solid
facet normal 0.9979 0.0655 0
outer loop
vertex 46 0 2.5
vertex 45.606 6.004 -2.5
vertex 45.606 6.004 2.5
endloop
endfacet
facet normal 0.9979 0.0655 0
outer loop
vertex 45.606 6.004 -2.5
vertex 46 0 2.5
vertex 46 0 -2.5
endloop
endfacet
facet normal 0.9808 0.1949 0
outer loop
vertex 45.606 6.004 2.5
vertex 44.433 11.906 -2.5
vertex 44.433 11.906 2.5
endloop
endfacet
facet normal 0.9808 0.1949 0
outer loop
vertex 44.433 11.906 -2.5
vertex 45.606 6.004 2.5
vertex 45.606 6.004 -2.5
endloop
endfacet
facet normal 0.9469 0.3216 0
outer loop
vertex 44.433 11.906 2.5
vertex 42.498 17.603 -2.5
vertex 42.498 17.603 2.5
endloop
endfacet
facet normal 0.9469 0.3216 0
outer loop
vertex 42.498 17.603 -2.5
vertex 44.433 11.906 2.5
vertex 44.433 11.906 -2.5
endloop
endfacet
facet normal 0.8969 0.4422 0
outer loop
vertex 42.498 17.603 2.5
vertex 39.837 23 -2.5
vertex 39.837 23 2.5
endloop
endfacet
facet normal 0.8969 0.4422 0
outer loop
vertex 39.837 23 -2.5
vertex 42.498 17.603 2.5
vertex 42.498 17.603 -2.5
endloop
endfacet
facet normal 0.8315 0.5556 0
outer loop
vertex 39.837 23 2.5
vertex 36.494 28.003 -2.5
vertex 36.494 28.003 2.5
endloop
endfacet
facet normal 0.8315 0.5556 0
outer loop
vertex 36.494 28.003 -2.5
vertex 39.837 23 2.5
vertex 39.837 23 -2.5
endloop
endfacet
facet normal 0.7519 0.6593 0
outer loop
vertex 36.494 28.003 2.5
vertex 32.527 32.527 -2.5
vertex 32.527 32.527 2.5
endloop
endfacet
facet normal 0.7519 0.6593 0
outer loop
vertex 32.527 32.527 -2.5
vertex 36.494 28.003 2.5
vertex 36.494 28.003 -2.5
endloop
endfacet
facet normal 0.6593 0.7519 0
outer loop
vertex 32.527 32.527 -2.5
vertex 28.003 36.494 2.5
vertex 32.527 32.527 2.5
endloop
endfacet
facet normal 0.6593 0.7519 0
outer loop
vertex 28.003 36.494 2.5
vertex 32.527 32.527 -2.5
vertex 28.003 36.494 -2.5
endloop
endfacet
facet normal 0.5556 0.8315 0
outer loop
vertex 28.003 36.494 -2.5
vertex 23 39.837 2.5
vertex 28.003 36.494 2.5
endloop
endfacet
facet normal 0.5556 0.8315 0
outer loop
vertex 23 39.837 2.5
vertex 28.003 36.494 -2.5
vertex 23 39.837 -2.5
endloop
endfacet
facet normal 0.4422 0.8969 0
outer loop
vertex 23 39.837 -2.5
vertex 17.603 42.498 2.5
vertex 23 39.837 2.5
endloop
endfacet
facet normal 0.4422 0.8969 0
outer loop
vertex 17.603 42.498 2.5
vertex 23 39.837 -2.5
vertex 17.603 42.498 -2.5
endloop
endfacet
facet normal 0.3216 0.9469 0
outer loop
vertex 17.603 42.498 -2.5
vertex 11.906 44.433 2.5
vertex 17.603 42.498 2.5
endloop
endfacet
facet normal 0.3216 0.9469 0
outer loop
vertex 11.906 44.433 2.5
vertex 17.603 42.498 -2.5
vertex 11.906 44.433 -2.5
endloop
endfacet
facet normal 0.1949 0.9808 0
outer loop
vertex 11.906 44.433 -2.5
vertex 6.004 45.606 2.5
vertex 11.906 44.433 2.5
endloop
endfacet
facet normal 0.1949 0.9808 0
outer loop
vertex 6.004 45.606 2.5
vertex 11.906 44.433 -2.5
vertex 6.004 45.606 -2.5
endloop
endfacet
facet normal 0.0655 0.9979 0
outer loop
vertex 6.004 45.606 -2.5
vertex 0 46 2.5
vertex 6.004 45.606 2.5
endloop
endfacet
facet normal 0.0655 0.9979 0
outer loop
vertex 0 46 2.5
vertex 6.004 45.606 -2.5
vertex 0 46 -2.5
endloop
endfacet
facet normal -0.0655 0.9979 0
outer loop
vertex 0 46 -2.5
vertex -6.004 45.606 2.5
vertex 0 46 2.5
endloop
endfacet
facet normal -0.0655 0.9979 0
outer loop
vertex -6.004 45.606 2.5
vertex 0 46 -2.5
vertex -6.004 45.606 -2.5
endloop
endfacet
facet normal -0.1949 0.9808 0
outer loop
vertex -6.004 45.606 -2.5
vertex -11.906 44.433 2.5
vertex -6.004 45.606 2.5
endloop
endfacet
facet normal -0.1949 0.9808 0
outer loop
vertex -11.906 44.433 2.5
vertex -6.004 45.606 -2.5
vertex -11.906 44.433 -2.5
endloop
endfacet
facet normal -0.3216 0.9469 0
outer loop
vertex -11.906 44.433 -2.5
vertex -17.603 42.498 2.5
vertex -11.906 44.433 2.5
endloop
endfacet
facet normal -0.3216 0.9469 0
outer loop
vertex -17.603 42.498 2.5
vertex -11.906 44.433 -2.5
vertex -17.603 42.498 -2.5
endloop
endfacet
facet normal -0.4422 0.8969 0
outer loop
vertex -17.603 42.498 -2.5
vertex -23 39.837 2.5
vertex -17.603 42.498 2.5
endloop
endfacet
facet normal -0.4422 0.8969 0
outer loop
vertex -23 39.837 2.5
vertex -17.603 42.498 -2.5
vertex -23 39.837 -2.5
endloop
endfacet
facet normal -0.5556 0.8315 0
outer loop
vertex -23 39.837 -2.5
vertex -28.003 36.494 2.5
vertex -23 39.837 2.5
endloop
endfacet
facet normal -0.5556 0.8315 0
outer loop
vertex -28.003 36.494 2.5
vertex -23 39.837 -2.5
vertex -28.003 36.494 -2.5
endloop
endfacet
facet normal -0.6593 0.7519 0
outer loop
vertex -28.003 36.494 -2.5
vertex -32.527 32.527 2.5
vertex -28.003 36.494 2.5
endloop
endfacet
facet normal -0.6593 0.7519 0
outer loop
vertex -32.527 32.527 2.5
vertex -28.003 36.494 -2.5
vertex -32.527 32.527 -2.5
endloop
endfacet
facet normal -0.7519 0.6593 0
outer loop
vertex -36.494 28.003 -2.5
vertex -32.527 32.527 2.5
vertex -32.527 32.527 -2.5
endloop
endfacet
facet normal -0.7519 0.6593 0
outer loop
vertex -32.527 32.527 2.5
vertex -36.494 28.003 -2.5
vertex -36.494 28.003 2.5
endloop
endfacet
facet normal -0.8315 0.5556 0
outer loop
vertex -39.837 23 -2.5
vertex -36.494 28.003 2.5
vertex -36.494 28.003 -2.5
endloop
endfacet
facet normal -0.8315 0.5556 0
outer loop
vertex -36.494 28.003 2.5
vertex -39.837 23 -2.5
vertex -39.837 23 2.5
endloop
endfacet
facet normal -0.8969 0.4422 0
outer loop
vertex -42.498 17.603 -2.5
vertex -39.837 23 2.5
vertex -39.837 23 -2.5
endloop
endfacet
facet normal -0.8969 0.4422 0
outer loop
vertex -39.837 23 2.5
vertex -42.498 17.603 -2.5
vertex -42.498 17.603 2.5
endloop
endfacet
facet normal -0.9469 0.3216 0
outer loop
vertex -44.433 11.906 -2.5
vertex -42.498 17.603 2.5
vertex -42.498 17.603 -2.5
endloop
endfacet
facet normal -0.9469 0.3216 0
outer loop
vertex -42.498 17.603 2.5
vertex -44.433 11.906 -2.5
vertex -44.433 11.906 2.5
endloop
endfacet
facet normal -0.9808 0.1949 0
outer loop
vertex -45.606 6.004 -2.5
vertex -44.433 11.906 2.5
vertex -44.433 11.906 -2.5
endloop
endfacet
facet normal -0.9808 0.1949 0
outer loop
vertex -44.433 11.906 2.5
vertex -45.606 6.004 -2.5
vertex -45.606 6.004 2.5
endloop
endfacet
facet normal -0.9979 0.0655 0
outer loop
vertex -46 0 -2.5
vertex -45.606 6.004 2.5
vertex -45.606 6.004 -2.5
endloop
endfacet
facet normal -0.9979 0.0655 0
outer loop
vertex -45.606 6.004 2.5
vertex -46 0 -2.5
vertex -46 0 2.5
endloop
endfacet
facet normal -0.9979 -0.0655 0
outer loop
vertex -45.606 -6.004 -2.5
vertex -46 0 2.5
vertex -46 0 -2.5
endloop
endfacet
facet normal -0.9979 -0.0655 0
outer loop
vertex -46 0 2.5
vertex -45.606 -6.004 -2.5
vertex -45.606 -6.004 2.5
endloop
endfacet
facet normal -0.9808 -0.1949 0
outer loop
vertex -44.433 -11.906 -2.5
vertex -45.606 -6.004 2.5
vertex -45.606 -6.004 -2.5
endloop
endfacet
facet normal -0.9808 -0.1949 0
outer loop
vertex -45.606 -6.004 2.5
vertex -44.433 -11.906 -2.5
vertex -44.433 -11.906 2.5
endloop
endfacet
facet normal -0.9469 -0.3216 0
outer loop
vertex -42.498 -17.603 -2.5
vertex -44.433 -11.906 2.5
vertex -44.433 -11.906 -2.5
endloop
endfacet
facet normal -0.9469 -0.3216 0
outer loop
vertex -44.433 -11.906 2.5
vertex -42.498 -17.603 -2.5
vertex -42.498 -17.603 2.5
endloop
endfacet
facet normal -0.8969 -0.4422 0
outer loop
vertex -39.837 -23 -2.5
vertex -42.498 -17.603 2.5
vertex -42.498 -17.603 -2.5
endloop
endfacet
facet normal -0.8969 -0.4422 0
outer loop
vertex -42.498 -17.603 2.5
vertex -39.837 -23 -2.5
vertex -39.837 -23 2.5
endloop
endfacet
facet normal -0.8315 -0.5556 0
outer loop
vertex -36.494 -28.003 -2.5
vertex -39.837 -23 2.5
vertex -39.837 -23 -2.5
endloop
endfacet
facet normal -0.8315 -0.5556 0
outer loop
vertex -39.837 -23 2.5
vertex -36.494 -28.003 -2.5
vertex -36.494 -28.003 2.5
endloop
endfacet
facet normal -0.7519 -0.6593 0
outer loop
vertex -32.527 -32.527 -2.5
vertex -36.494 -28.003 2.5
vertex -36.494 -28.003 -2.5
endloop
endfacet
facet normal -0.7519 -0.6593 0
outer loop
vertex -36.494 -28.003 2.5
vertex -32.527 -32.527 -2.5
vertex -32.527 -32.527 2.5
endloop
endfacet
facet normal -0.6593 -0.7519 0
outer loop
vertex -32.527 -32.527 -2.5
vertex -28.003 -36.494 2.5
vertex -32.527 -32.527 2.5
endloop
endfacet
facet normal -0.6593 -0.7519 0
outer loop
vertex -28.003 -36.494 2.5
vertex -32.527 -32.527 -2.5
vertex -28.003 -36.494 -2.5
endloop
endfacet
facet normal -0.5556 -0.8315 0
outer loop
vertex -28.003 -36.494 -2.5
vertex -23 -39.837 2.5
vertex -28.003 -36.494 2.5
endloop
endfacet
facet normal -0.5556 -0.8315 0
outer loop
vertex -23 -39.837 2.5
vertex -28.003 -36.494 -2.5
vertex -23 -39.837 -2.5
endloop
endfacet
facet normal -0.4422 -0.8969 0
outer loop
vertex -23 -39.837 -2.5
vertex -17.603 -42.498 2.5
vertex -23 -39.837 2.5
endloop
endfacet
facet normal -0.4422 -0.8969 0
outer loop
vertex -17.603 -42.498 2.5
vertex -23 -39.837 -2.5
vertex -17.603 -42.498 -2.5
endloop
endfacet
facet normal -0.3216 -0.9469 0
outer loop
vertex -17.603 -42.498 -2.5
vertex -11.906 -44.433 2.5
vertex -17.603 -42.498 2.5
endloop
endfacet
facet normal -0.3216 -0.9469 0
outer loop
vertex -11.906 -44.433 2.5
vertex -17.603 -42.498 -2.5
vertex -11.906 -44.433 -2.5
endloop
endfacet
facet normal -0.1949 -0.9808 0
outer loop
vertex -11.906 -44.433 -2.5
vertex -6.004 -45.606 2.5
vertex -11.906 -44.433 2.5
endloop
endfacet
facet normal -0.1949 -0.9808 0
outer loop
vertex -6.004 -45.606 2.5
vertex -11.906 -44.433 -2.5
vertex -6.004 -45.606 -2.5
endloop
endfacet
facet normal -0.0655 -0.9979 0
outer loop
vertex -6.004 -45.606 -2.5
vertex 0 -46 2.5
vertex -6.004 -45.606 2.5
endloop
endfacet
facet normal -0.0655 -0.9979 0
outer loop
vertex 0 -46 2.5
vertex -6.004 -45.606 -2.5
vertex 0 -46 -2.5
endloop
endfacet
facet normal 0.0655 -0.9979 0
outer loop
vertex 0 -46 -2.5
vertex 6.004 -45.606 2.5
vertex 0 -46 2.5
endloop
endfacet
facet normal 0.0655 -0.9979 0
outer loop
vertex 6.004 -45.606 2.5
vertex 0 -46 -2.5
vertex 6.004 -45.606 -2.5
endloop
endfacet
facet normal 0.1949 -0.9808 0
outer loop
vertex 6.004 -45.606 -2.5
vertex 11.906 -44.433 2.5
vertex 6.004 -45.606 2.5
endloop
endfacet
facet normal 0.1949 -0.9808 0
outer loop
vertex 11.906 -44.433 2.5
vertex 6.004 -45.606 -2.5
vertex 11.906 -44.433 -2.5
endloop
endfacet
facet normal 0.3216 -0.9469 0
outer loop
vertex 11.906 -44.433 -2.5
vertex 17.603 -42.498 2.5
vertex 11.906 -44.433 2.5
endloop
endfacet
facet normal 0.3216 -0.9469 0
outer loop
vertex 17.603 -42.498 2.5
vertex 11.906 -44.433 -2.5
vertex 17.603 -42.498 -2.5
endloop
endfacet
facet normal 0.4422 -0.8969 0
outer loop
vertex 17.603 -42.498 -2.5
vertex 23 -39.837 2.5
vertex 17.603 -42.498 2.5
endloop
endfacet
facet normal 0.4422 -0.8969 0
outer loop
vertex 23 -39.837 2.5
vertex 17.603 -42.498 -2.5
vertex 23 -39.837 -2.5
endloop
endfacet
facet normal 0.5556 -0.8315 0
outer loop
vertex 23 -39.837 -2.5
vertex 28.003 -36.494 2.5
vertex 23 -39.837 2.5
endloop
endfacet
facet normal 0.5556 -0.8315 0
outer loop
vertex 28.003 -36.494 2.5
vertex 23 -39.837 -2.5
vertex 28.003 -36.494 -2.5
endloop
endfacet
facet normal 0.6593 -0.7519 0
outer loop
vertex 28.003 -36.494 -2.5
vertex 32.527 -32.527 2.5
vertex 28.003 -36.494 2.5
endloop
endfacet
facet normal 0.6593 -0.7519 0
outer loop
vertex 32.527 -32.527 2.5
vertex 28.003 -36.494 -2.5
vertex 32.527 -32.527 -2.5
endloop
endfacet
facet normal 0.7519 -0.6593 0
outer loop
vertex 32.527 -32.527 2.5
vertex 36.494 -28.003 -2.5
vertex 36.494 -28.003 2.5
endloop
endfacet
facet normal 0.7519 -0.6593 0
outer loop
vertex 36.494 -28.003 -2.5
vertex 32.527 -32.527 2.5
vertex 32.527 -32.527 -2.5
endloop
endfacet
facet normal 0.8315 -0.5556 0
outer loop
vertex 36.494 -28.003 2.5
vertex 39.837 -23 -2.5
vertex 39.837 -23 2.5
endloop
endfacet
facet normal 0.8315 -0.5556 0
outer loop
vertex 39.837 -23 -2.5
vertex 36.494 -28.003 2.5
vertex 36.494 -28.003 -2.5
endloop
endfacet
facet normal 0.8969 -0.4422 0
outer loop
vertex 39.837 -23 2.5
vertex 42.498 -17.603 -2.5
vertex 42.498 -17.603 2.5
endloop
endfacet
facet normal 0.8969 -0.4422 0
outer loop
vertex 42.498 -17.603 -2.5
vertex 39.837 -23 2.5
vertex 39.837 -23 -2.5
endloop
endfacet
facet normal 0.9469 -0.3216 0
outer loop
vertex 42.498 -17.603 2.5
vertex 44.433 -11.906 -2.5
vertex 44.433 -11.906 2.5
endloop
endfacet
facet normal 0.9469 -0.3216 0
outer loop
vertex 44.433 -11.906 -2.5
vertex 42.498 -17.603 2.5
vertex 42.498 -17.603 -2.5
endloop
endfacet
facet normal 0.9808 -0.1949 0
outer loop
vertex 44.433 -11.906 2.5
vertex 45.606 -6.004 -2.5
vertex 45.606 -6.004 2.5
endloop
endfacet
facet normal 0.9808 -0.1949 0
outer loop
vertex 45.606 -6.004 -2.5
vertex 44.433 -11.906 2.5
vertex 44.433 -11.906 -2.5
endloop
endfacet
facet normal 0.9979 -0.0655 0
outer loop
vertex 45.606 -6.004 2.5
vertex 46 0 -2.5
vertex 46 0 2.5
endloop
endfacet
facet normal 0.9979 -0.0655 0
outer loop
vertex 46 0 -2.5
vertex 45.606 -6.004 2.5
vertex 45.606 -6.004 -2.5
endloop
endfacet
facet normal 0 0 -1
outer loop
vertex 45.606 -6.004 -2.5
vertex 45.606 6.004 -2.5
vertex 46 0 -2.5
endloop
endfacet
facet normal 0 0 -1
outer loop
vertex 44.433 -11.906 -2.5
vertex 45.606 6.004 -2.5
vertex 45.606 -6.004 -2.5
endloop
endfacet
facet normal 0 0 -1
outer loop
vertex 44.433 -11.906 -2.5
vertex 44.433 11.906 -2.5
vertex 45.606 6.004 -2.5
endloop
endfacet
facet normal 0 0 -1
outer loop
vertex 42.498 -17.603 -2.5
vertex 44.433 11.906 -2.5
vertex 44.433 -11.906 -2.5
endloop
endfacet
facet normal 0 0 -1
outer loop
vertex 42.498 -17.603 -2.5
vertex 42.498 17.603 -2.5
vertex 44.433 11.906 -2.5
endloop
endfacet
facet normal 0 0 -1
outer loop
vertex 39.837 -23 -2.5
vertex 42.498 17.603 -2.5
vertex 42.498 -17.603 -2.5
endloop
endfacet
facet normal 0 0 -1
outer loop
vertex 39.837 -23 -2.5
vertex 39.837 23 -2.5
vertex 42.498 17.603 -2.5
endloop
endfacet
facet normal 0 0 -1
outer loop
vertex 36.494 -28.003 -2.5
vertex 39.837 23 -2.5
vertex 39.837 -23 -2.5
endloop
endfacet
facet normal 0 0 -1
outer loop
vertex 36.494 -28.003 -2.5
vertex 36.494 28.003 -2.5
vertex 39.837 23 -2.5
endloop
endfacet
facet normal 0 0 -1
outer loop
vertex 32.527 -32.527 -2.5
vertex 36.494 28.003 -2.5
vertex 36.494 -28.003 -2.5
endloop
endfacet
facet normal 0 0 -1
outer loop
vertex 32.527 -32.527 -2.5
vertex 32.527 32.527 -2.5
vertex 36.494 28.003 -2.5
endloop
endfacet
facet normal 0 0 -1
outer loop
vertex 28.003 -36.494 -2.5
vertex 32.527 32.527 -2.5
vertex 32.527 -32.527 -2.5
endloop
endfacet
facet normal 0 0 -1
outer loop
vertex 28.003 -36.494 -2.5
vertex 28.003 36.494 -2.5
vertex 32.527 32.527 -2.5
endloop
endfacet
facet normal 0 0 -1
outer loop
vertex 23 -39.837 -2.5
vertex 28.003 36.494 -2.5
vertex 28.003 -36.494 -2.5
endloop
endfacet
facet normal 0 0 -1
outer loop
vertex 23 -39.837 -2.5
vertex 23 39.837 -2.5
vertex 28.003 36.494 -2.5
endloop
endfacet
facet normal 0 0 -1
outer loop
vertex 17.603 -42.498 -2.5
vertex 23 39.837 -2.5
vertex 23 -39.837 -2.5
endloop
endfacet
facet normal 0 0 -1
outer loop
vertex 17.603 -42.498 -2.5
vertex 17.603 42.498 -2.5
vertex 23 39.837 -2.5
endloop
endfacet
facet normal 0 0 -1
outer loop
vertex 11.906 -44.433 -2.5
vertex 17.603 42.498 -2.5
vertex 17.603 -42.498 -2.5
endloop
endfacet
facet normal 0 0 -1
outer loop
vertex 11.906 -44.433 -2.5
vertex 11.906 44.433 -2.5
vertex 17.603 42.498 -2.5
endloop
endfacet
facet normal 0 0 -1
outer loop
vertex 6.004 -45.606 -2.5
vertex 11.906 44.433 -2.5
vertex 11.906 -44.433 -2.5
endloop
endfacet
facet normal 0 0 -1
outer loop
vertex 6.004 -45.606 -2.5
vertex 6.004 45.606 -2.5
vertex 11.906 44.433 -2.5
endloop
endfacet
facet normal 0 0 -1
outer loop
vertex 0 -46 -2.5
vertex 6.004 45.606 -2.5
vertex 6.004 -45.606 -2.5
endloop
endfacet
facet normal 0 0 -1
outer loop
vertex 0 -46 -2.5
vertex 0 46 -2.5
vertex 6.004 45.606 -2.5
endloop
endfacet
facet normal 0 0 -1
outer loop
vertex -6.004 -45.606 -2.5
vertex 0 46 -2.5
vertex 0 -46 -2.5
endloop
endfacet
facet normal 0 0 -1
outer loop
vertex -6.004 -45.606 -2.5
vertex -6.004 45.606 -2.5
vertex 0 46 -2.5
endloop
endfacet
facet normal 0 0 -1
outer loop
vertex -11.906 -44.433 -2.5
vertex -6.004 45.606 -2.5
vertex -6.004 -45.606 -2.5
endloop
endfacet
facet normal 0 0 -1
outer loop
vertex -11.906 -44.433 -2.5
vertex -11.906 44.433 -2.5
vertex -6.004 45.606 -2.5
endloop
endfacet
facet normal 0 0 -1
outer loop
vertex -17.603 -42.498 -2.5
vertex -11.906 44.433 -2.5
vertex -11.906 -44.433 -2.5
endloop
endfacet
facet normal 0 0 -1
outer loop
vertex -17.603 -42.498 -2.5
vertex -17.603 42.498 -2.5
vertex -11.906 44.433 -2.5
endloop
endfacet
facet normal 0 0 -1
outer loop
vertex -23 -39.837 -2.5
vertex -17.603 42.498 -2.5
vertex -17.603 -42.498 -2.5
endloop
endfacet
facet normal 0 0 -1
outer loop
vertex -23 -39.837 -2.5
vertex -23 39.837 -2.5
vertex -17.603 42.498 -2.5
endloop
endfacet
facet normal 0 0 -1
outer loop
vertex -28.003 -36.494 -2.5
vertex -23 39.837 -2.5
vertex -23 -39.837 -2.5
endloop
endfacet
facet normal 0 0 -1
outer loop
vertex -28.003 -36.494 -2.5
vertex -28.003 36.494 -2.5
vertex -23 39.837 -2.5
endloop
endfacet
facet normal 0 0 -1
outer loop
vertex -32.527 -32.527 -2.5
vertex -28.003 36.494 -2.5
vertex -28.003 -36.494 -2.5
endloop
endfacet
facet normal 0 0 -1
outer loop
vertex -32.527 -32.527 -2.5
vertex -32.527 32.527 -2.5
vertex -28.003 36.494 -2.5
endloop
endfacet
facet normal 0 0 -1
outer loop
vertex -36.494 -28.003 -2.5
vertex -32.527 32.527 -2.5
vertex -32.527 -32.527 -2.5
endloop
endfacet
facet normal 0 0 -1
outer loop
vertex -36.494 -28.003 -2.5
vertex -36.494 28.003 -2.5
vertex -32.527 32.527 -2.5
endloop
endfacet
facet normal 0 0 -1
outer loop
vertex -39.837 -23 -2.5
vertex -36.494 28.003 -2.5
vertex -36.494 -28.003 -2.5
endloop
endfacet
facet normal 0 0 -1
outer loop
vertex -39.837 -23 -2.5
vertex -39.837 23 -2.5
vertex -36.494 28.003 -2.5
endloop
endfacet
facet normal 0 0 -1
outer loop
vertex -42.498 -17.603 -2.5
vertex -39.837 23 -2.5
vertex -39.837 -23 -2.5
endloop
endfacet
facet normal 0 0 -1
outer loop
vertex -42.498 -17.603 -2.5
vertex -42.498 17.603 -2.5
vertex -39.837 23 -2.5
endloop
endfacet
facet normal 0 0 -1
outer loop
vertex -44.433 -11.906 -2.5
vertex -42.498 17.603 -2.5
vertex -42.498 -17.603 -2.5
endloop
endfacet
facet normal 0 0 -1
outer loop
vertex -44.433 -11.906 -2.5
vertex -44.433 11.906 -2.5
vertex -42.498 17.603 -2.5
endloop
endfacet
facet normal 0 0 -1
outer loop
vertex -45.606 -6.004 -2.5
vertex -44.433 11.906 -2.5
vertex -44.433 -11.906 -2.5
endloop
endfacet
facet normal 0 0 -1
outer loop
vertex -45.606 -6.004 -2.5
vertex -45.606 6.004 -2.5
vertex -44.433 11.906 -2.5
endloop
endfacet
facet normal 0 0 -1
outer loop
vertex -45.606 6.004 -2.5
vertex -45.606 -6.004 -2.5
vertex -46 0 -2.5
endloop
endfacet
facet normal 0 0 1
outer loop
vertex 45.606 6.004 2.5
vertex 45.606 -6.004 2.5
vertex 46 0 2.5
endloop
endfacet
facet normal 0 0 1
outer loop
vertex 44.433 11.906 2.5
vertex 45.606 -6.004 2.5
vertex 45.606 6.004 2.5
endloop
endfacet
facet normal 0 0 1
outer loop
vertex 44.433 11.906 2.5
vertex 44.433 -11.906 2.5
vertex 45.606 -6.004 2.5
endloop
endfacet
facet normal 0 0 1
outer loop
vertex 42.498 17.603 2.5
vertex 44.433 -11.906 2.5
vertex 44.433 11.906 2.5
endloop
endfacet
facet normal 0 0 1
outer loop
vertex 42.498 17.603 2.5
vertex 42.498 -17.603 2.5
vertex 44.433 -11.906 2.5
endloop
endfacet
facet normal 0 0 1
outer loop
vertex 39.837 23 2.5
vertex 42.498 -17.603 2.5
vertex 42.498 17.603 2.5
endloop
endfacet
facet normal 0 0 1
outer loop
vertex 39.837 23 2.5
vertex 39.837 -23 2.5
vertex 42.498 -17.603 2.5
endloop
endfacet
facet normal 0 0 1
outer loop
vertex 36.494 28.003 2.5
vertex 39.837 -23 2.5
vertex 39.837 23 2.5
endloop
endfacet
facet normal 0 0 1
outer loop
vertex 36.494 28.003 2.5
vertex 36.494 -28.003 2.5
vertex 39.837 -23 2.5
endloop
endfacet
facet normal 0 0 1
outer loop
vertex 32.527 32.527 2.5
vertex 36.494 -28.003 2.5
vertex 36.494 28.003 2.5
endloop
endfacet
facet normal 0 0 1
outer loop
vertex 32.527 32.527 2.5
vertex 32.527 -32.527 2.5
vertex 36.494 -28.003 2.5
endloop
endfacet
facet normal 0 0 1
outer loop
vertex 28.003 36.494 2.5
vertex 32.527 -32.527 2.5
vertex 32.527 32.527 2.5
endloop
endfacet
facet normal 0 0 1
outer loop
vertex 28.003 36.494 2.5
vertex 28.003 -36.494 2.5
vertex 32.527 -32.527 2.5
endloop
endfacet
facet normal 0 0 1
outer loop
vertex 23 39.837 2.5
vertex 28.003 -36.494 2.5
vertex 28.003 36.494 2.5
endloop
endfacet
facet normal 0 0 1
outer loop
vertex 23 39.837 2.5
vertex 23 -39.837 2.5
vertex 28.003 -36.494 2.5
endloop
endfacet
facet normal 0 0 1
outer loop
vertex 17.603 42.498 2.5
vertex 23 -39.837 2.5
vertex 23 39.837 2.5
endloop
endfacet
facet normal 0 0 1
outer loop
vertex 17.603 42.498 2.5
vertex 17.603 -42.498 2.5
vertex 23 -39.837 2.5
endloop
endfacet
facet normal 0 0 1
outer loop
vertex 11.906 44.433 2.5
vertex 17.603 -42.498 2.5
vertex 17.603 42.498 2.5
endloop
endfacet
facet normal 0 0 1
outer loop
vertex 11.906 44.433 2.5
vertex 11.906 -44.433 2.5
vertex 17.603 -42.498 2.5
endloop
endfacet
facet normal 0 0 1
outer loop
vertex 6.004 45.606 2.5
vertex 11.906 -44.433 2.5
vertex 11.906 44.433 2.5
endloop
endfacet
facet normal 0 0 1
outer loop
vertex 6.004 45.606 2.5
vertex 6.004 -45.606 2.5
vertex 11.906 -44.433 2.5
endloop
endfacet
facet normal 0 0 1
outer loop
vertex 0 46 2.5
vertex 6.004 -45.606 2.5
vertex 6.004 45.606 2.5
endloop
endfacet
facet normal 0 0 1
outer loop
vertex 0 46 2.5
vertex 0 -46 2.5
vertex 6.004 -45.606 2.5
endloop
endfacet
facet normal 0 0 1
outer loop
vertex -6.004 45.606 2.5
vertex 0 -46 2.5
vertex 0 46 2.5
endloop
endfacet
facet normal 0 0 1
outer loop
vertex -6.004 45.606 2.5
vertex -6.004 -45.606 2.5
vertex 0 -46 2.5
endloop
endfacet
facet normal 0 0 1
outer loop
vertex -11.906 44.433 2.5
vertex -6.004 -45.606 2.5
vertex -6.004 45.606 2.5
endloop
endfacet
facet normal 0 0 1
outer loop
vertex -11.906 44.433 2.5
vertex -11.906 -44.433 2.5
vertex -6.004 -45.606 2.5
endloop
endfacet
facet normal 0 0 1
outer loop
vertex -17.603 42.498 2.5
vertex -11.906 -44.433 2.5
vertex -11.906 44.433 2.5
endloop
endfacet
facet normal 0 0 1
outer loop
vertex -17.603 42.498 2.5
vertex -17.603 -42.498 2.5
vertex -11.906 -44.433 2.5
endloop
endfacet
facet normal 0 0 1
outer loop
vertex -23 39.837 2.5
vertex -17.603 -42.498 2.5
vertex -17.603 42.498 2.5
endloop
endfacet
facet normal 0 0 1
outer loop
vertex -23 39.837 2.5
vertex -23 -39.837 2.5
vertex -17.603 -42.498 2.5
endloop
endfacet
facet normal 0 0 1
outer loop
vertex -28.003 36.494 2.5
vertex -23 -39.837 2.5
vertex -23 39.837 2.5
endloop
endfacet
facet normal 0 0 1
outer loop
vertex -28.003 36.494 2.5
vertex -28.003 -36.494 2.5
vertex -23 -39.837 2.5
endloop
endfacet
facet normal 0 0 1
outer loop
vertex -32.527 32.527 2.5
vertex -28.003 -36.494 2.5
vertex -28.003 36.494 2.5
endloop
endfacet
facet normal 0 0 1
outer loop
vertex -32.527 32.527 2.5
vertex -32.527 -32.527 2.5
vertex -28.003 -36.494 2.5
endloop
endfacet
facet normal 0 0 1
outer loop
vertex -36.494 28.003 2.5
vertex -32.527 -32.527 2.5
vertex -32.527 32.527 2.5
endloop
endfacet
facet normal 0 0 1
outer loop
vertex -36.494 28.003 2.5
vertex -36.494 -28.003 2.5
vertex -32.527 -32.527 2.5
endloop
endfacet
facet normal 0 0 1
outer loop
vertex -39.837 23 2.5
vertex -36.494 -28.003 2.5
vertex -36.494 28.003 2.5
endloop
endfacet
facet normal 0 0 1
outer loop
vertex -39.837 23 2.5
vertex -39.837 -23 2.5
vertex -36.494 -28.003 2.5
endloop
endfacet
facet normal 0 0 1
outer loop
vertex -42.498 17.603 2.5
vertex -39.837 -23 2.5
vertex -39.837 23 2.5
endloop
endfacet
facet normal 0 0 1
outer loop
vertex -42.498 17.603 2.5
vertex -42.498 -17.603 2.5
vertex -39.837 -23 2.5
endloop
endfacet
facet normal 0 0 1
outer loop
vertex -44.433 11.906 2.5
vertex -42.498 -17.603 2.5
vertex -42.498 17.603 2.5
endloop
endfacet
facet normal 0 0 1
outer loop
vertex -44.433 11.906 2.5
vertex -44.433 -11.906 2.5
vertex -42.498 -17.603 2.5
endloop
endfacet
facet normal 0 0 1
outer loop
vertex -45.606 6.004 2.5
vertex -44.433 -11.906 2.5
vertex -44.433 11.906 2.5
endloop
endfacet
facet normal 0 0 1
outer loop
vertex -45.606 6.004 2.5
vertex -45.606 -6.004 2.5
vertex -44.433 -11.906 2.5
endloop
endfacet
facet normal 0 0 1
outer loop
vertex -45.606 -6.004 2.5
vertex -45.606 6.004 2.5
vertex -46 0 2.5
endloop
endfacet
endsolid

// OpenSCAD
// ========================================
// a cylinder with radius 4.6 cm and height 0.5 cm
// NeuroCAD canonical IR; dimensions are millimetres
// ========================================
$fn = 48;

cylinder(r=46, h=5, center=true);
